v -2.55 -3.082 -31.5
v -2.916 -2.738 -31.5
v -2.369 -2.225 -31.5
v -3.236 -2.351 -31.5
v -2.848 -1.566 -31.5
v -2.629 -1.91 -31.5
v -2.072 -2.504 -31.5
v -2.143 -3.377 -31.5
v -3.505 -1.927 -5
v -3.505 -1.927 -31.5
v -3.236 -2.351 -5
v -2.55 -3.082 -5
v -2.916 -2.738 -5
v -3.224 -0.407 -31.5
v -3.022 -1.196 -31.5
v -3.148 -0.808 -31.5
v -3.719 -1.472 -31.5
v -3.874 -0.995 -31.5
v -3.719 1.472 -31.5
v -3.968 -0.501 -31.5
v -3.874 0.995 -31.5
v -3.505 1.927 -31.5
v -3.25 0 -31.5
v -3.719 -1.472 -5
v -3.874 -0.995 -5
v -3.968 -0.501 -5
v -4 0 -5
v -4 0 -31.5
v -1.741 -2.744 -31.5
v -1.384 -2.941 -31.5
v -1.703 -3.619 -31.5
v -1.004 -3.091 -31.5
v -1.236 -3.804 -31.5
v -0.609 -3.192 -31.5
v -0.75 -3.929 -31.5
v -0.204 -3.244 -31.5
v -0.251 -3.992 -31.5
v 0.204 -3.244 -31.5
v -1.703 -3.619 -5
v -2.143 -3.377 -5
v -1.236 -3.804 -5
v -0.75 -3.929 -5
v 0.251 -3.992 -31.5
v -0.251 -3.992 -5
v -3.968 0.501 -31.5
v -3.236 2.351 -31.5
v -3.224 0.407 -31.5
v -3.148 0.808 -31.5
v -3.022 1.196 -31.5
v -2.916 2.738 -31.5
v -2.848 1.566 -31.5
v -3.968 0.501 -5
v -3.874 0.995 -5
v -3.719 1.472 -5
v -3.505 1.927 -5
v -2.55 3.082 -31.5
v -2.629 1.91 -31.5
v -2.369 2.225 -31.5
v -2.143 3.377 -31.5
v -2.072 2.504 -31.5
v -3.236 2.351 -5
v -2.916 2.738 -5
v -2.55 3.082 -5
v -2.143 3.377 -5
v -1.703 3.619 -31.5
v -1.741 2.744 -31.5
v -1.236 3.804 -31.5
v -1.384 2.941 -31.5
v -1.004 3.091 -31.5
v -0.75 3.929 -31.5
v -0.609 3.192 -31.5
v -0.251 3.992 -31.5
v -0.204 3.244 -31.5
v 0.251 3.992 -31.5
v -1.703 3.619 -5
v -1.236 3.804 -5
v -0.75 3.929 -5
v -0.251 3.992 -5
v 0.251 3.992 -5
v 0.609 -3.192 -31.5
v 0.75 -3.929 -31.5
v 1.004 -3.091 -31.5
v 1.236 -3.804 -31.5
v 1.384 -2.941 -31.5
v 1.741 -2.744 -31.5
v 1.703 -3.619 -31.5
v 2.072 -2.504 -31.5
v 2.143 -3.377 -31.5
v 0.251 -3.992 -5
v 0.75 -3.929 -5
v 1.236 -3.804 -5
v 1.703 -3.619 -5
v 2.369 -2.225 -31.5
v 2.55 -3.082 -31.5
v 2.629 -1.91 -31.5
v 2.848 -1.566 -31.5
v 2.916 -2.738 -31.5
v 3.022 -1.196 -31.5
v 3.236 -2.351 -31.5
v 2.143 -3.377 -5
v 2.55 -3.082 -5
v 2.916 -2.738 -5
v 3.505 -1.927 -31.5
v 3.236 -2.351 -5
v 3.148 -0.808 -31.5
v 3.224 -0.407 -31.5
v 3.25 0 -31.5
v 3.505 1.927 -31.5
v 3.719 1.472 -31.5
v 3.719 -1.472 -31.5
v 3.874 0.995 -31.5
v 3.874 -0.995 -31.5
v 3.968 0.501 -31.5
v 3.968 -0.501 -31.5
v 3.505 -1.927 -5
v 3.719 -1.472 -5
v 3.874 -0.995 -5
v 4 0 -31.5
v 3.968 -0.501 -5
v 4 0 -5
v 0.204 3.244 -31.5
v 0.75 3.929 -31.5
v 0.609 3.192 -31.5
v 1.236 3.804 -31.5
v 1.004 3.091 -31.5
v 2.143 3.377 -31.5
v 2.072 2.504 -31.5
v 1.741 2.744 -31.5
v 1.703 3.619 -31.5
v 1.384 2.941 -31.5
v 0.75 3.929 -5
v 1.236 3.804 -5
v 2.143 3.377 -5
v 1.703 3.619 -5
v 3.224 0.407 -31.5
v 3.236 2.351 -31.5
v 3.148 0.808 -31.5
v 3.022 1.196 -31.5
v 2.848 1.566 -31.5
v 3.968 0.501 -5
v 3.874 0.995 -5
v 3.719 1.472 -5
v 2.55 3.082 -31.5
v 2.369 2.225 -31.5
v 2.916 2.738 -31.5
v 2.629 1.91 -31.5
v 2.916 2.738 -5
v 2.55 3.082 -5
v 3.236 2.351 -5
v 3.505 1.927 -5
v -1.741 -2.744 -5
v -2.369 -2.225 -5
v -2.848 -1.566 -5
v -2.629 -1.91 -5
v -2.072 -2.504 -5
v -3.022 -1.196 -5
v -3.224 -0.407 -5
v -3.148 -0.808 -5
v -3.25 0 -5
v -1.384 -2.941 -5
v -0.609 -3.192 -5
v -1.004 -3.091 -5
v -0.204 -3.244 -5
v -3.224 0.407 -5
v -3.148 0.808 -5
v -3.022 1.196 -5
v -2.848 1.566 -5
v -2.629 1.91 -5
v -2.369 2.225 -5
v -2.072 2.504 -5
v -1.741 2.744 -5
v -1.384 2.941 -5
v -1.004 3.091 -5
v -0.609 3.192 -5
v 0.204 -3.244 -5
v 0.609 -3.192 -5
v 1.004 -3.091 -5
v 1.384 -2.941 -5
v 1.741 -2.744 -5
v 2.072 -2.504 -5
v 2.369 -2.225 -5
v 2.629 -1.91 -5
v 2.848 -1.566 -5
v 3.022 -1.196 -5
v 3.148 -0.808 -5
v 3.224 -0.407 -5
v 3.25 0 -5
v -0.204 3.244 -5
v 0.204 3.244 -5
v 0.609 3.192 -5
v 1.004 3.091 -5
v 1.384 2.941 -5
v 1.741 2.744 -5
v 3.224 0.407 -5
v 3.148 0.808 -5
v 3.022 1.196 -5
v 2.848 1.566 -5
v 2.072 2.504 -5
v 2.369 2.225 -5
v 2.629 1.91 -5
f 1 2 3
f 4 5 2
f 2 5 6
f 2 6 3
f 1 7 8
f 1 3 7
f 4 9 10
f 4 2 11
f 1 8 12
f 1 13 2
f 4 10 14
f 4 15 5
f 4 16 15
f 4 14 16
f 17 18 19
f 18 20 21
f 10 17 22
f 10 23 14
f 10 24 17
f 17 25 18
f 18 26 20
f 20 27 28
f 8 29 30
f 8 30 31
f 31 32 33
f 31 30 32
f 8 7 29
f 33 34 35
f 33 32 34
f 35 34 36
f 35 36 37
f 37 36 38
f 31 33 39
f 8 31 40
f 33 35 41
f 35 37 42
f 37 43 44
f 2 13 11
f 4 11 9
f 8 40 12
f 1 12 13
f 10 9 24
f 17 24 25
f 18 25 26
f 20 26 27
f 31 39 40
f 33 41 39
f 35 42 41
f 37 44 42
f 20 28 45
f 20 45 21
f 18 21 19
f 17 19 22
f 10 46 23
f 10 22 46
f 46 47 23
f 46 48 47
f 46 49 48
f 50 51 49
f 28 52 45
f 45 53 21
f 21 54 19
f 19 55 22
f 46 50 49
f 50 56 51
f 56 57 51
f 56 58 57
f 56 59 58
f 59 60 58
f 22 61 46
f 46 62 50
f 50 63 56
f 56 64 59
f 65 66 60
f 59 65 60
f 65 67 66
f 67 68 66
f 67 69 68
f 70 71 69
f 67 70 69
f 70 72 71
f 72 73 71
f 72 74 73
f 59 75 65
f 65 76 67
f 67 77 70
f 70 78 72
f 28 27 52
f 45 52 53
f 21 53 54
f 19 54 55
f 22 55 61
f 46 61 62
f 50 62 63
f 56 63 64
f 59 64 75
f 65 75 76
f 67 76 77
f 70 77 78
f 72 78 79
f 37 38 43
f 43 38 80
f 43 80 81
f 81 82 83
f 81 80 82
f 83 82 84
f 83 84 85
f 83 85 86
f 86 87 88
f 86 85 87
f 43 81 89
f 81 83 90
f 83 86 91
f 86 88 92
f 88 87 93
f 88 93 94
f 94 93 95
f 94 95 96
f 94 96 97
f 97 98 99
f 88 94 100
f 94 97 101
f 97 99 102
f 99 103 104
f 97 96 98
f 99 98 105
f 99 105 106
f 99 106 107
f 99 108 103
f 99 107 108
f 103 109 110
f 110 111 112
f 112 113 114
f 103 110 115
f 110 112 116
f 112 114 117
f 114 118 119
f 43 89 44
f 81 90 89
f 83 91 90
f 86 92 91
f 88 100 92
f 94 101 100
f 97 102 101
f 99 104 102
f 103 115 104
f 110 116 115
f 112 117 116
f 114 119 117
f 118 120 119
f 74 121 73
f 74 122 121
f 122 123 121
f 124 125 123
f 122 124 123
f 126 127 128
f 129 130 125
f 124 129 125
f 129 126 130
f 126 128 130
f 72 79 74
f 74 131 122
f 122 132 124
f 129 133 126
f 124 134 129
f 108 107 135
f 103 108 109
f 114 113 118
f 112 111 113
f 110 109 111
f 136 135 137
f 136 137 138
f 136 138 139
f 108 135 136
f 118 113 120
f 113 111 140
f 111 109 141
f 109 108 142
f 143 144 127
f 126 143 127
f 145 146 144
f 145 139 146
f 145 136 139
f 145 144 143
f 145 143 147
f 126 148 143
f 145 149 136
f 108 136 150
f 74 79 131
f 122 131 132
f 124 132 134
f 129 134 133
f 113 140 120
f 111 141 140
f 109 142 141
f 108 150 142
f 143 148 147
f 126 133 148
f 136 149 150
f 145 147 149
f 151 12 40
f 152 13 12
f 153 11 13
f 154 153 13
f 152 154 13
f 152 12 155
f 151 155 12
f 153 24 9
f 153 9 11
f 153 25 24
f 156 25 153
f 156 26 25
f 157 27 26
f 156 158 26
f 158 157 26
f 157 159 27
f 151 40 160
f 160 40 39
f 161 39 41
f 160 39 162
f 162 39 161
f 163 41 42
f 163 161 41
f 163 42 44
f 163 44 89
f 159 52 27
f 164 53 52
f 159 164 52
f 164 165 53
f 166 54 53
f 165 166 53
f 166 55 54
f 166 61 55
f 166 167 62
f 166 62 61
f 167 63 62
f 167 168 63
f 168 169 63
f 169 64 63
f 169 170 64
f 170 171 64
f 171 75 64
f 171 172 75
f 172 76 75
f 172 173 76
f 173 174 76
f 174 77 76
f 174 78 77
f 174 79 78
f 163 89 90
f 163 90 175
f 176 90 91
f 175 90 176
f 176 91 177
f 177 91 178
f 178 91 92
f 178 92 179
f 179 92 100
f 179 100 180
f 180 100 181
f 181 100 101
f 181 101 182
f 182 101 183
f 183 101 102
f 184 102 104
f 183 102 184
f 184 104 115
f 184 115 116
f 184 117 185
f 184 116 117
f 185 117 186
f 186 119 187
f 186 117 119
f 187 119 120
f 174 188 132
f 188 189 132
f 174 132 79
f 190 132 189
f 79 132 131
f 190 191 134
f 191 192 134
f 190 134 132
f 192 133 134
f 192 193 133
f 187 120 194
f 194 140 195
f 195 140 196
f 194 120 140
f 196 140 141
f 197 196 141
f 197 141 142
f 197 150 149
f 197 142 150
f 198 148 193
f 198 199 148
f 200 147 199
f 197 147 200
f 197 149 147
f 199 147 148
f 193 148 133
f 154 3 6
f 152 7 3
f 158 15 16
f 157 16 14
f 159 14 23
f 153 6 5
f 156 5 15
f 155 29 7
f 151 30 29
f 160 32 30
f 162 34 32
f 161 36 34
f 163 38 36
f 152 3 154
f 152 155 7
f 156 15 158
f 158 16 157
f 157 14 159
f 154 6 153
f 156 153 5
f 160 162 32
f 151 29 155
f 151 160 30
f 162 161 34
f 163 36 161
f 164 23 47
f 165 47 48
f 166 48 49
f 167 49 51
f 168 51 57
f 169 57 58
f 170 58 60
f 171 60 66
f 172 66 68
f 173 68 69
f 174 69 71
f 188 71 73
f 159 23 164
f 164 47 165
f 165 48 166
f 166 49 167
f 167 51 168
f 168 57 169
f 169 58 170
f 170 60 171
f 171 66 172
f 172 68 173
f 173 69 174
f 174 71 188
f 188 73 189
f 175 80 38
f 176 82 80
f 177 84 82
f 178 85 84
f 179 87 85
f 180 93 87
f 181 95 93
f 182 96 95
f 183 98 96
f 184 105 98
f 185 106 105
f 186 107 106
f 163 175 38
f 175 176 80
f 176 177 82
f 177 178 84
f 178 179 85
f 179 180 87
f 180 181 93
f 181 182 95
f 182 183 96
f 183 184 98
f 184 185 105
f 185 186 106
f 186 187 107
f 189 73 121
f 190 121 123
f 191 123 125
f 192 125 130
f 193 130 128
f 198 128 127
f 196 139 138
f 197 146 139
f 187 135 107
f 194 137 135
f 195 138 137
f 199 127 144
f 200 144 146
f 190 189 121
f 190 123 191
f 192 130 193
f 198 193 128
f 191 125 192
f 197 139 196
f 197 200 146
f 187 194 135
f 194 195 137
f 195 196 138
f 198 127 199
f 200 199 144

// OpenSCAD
$fn = 50;

difference() {
	union() {
		translate(v = [0, 0, -31.5]) {
			cylinder(h = 31.5, r = 4.0);
		}
	}
	union() {
		translate(v = [0, 0, 0]) {
			rotate(a = [0, 0, 0]) {
				difference() {
					union() {
						translate(v = [0, 0, -5]) {
							linear_extrude(height = 5) {
								polygon(points = [[5.914249999999999, 0.0], [2.957125, 5.1218907443321156], [-2.9571249999999982, 5.1218907443321156], [-5.914249999999999, 7.242867331857232e-16], [-2.9571250000000022, -5.121890744332115], [2.9571249999999956, -5.121890744332118]]);
							}
						}
					}
					union();
				}
			}
		}
		#translate(v = [0, 0, -100.0]) {
			cylinder(h = 200, r = 3.25);
		}
	}
}
